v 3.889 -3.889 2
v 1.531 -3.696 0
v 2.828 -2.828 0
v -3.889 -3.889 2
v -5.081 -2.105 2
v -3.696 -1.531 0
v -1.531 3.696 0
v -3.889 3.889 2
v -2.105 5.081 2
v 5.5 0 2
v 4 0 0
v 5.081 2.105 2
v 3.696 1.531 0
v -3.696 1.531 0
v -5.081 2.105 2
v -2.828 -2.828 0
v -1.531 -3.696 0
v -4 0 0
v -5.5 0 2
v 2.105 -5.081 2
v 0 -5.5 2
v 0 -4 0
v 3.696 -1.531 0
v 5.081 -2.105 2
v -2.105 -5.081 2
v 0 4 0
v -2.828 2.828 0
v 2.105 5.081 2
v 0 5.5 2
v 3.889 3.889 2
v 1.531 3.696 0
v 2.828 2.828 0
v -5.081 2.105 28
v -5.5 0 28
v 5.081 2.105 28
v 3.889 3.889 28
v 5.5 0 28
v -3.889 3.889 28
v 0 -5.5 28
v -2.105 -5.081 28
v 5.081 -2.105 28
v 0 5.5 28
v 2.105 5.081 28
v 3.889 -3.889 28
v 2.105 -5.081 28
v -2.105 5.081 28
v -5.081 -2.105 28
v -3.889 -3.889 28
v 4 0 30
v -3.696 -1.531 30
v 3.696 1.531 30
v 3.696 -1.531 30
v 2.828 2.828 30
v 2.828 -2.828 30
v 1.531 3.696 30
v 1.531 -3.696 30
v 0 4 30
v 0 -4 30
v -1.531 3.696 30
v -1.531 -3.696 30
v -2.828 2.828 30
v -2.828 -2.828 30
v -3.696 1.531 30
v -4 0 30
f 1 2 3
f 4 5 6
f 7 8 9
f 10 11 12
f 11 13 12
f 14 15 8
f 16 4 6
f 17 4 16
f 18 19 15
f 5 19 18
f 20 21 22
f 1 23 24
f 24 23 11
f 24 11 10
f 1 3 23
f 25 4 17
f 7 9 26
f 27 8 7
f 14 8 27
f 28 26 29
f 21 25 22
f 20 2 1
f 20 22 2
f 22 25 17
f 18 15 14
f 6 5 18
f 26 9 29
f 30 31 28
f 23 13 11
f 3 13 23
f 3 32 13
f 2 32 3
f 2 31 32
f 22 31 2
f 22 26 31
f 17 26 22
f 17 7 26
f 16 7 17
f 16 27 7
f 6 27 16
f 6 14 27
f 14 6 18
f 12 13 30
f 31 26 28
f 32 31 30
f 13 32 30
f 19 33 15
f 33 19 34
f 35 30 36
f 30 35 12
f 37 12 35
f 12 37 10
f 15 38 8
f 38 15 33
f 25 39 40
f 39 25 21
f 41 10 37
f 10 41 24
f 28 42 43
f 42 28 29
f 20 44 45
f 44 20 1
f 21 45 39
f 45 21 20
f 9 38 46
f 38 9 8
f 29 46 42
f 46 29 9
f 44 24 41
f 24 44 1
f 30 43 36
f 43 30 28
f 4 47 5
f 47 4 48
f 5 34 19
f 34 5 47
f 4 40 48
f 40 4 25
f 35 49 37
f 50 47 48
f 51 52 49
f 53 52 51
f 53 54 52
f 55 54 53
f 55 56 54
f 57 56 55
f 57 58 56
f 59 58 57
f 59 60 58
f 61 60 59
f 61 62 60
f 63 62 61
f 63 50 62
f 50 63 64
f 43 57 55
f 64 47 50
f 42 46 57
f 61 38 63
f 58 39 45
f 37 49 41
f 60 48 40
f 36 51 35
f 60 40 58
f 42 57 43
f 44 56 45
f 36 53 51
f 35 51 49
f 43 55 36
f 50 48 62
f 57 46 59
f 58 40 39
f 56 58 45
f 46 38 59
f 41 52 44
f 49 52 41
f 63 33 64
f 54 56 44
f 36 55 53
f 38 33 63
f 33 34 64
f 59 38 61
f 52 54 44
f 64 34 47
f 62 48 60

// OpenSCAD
$fn=16;
od = 11; //10
td = 8; //7
cylinder(h=2,d1=td,d2=od);
translate([0,0,2]) cylinder(h=26,d=od);
translate([0,0,28]) cylinder(h=2,d1=od,d2=td);
